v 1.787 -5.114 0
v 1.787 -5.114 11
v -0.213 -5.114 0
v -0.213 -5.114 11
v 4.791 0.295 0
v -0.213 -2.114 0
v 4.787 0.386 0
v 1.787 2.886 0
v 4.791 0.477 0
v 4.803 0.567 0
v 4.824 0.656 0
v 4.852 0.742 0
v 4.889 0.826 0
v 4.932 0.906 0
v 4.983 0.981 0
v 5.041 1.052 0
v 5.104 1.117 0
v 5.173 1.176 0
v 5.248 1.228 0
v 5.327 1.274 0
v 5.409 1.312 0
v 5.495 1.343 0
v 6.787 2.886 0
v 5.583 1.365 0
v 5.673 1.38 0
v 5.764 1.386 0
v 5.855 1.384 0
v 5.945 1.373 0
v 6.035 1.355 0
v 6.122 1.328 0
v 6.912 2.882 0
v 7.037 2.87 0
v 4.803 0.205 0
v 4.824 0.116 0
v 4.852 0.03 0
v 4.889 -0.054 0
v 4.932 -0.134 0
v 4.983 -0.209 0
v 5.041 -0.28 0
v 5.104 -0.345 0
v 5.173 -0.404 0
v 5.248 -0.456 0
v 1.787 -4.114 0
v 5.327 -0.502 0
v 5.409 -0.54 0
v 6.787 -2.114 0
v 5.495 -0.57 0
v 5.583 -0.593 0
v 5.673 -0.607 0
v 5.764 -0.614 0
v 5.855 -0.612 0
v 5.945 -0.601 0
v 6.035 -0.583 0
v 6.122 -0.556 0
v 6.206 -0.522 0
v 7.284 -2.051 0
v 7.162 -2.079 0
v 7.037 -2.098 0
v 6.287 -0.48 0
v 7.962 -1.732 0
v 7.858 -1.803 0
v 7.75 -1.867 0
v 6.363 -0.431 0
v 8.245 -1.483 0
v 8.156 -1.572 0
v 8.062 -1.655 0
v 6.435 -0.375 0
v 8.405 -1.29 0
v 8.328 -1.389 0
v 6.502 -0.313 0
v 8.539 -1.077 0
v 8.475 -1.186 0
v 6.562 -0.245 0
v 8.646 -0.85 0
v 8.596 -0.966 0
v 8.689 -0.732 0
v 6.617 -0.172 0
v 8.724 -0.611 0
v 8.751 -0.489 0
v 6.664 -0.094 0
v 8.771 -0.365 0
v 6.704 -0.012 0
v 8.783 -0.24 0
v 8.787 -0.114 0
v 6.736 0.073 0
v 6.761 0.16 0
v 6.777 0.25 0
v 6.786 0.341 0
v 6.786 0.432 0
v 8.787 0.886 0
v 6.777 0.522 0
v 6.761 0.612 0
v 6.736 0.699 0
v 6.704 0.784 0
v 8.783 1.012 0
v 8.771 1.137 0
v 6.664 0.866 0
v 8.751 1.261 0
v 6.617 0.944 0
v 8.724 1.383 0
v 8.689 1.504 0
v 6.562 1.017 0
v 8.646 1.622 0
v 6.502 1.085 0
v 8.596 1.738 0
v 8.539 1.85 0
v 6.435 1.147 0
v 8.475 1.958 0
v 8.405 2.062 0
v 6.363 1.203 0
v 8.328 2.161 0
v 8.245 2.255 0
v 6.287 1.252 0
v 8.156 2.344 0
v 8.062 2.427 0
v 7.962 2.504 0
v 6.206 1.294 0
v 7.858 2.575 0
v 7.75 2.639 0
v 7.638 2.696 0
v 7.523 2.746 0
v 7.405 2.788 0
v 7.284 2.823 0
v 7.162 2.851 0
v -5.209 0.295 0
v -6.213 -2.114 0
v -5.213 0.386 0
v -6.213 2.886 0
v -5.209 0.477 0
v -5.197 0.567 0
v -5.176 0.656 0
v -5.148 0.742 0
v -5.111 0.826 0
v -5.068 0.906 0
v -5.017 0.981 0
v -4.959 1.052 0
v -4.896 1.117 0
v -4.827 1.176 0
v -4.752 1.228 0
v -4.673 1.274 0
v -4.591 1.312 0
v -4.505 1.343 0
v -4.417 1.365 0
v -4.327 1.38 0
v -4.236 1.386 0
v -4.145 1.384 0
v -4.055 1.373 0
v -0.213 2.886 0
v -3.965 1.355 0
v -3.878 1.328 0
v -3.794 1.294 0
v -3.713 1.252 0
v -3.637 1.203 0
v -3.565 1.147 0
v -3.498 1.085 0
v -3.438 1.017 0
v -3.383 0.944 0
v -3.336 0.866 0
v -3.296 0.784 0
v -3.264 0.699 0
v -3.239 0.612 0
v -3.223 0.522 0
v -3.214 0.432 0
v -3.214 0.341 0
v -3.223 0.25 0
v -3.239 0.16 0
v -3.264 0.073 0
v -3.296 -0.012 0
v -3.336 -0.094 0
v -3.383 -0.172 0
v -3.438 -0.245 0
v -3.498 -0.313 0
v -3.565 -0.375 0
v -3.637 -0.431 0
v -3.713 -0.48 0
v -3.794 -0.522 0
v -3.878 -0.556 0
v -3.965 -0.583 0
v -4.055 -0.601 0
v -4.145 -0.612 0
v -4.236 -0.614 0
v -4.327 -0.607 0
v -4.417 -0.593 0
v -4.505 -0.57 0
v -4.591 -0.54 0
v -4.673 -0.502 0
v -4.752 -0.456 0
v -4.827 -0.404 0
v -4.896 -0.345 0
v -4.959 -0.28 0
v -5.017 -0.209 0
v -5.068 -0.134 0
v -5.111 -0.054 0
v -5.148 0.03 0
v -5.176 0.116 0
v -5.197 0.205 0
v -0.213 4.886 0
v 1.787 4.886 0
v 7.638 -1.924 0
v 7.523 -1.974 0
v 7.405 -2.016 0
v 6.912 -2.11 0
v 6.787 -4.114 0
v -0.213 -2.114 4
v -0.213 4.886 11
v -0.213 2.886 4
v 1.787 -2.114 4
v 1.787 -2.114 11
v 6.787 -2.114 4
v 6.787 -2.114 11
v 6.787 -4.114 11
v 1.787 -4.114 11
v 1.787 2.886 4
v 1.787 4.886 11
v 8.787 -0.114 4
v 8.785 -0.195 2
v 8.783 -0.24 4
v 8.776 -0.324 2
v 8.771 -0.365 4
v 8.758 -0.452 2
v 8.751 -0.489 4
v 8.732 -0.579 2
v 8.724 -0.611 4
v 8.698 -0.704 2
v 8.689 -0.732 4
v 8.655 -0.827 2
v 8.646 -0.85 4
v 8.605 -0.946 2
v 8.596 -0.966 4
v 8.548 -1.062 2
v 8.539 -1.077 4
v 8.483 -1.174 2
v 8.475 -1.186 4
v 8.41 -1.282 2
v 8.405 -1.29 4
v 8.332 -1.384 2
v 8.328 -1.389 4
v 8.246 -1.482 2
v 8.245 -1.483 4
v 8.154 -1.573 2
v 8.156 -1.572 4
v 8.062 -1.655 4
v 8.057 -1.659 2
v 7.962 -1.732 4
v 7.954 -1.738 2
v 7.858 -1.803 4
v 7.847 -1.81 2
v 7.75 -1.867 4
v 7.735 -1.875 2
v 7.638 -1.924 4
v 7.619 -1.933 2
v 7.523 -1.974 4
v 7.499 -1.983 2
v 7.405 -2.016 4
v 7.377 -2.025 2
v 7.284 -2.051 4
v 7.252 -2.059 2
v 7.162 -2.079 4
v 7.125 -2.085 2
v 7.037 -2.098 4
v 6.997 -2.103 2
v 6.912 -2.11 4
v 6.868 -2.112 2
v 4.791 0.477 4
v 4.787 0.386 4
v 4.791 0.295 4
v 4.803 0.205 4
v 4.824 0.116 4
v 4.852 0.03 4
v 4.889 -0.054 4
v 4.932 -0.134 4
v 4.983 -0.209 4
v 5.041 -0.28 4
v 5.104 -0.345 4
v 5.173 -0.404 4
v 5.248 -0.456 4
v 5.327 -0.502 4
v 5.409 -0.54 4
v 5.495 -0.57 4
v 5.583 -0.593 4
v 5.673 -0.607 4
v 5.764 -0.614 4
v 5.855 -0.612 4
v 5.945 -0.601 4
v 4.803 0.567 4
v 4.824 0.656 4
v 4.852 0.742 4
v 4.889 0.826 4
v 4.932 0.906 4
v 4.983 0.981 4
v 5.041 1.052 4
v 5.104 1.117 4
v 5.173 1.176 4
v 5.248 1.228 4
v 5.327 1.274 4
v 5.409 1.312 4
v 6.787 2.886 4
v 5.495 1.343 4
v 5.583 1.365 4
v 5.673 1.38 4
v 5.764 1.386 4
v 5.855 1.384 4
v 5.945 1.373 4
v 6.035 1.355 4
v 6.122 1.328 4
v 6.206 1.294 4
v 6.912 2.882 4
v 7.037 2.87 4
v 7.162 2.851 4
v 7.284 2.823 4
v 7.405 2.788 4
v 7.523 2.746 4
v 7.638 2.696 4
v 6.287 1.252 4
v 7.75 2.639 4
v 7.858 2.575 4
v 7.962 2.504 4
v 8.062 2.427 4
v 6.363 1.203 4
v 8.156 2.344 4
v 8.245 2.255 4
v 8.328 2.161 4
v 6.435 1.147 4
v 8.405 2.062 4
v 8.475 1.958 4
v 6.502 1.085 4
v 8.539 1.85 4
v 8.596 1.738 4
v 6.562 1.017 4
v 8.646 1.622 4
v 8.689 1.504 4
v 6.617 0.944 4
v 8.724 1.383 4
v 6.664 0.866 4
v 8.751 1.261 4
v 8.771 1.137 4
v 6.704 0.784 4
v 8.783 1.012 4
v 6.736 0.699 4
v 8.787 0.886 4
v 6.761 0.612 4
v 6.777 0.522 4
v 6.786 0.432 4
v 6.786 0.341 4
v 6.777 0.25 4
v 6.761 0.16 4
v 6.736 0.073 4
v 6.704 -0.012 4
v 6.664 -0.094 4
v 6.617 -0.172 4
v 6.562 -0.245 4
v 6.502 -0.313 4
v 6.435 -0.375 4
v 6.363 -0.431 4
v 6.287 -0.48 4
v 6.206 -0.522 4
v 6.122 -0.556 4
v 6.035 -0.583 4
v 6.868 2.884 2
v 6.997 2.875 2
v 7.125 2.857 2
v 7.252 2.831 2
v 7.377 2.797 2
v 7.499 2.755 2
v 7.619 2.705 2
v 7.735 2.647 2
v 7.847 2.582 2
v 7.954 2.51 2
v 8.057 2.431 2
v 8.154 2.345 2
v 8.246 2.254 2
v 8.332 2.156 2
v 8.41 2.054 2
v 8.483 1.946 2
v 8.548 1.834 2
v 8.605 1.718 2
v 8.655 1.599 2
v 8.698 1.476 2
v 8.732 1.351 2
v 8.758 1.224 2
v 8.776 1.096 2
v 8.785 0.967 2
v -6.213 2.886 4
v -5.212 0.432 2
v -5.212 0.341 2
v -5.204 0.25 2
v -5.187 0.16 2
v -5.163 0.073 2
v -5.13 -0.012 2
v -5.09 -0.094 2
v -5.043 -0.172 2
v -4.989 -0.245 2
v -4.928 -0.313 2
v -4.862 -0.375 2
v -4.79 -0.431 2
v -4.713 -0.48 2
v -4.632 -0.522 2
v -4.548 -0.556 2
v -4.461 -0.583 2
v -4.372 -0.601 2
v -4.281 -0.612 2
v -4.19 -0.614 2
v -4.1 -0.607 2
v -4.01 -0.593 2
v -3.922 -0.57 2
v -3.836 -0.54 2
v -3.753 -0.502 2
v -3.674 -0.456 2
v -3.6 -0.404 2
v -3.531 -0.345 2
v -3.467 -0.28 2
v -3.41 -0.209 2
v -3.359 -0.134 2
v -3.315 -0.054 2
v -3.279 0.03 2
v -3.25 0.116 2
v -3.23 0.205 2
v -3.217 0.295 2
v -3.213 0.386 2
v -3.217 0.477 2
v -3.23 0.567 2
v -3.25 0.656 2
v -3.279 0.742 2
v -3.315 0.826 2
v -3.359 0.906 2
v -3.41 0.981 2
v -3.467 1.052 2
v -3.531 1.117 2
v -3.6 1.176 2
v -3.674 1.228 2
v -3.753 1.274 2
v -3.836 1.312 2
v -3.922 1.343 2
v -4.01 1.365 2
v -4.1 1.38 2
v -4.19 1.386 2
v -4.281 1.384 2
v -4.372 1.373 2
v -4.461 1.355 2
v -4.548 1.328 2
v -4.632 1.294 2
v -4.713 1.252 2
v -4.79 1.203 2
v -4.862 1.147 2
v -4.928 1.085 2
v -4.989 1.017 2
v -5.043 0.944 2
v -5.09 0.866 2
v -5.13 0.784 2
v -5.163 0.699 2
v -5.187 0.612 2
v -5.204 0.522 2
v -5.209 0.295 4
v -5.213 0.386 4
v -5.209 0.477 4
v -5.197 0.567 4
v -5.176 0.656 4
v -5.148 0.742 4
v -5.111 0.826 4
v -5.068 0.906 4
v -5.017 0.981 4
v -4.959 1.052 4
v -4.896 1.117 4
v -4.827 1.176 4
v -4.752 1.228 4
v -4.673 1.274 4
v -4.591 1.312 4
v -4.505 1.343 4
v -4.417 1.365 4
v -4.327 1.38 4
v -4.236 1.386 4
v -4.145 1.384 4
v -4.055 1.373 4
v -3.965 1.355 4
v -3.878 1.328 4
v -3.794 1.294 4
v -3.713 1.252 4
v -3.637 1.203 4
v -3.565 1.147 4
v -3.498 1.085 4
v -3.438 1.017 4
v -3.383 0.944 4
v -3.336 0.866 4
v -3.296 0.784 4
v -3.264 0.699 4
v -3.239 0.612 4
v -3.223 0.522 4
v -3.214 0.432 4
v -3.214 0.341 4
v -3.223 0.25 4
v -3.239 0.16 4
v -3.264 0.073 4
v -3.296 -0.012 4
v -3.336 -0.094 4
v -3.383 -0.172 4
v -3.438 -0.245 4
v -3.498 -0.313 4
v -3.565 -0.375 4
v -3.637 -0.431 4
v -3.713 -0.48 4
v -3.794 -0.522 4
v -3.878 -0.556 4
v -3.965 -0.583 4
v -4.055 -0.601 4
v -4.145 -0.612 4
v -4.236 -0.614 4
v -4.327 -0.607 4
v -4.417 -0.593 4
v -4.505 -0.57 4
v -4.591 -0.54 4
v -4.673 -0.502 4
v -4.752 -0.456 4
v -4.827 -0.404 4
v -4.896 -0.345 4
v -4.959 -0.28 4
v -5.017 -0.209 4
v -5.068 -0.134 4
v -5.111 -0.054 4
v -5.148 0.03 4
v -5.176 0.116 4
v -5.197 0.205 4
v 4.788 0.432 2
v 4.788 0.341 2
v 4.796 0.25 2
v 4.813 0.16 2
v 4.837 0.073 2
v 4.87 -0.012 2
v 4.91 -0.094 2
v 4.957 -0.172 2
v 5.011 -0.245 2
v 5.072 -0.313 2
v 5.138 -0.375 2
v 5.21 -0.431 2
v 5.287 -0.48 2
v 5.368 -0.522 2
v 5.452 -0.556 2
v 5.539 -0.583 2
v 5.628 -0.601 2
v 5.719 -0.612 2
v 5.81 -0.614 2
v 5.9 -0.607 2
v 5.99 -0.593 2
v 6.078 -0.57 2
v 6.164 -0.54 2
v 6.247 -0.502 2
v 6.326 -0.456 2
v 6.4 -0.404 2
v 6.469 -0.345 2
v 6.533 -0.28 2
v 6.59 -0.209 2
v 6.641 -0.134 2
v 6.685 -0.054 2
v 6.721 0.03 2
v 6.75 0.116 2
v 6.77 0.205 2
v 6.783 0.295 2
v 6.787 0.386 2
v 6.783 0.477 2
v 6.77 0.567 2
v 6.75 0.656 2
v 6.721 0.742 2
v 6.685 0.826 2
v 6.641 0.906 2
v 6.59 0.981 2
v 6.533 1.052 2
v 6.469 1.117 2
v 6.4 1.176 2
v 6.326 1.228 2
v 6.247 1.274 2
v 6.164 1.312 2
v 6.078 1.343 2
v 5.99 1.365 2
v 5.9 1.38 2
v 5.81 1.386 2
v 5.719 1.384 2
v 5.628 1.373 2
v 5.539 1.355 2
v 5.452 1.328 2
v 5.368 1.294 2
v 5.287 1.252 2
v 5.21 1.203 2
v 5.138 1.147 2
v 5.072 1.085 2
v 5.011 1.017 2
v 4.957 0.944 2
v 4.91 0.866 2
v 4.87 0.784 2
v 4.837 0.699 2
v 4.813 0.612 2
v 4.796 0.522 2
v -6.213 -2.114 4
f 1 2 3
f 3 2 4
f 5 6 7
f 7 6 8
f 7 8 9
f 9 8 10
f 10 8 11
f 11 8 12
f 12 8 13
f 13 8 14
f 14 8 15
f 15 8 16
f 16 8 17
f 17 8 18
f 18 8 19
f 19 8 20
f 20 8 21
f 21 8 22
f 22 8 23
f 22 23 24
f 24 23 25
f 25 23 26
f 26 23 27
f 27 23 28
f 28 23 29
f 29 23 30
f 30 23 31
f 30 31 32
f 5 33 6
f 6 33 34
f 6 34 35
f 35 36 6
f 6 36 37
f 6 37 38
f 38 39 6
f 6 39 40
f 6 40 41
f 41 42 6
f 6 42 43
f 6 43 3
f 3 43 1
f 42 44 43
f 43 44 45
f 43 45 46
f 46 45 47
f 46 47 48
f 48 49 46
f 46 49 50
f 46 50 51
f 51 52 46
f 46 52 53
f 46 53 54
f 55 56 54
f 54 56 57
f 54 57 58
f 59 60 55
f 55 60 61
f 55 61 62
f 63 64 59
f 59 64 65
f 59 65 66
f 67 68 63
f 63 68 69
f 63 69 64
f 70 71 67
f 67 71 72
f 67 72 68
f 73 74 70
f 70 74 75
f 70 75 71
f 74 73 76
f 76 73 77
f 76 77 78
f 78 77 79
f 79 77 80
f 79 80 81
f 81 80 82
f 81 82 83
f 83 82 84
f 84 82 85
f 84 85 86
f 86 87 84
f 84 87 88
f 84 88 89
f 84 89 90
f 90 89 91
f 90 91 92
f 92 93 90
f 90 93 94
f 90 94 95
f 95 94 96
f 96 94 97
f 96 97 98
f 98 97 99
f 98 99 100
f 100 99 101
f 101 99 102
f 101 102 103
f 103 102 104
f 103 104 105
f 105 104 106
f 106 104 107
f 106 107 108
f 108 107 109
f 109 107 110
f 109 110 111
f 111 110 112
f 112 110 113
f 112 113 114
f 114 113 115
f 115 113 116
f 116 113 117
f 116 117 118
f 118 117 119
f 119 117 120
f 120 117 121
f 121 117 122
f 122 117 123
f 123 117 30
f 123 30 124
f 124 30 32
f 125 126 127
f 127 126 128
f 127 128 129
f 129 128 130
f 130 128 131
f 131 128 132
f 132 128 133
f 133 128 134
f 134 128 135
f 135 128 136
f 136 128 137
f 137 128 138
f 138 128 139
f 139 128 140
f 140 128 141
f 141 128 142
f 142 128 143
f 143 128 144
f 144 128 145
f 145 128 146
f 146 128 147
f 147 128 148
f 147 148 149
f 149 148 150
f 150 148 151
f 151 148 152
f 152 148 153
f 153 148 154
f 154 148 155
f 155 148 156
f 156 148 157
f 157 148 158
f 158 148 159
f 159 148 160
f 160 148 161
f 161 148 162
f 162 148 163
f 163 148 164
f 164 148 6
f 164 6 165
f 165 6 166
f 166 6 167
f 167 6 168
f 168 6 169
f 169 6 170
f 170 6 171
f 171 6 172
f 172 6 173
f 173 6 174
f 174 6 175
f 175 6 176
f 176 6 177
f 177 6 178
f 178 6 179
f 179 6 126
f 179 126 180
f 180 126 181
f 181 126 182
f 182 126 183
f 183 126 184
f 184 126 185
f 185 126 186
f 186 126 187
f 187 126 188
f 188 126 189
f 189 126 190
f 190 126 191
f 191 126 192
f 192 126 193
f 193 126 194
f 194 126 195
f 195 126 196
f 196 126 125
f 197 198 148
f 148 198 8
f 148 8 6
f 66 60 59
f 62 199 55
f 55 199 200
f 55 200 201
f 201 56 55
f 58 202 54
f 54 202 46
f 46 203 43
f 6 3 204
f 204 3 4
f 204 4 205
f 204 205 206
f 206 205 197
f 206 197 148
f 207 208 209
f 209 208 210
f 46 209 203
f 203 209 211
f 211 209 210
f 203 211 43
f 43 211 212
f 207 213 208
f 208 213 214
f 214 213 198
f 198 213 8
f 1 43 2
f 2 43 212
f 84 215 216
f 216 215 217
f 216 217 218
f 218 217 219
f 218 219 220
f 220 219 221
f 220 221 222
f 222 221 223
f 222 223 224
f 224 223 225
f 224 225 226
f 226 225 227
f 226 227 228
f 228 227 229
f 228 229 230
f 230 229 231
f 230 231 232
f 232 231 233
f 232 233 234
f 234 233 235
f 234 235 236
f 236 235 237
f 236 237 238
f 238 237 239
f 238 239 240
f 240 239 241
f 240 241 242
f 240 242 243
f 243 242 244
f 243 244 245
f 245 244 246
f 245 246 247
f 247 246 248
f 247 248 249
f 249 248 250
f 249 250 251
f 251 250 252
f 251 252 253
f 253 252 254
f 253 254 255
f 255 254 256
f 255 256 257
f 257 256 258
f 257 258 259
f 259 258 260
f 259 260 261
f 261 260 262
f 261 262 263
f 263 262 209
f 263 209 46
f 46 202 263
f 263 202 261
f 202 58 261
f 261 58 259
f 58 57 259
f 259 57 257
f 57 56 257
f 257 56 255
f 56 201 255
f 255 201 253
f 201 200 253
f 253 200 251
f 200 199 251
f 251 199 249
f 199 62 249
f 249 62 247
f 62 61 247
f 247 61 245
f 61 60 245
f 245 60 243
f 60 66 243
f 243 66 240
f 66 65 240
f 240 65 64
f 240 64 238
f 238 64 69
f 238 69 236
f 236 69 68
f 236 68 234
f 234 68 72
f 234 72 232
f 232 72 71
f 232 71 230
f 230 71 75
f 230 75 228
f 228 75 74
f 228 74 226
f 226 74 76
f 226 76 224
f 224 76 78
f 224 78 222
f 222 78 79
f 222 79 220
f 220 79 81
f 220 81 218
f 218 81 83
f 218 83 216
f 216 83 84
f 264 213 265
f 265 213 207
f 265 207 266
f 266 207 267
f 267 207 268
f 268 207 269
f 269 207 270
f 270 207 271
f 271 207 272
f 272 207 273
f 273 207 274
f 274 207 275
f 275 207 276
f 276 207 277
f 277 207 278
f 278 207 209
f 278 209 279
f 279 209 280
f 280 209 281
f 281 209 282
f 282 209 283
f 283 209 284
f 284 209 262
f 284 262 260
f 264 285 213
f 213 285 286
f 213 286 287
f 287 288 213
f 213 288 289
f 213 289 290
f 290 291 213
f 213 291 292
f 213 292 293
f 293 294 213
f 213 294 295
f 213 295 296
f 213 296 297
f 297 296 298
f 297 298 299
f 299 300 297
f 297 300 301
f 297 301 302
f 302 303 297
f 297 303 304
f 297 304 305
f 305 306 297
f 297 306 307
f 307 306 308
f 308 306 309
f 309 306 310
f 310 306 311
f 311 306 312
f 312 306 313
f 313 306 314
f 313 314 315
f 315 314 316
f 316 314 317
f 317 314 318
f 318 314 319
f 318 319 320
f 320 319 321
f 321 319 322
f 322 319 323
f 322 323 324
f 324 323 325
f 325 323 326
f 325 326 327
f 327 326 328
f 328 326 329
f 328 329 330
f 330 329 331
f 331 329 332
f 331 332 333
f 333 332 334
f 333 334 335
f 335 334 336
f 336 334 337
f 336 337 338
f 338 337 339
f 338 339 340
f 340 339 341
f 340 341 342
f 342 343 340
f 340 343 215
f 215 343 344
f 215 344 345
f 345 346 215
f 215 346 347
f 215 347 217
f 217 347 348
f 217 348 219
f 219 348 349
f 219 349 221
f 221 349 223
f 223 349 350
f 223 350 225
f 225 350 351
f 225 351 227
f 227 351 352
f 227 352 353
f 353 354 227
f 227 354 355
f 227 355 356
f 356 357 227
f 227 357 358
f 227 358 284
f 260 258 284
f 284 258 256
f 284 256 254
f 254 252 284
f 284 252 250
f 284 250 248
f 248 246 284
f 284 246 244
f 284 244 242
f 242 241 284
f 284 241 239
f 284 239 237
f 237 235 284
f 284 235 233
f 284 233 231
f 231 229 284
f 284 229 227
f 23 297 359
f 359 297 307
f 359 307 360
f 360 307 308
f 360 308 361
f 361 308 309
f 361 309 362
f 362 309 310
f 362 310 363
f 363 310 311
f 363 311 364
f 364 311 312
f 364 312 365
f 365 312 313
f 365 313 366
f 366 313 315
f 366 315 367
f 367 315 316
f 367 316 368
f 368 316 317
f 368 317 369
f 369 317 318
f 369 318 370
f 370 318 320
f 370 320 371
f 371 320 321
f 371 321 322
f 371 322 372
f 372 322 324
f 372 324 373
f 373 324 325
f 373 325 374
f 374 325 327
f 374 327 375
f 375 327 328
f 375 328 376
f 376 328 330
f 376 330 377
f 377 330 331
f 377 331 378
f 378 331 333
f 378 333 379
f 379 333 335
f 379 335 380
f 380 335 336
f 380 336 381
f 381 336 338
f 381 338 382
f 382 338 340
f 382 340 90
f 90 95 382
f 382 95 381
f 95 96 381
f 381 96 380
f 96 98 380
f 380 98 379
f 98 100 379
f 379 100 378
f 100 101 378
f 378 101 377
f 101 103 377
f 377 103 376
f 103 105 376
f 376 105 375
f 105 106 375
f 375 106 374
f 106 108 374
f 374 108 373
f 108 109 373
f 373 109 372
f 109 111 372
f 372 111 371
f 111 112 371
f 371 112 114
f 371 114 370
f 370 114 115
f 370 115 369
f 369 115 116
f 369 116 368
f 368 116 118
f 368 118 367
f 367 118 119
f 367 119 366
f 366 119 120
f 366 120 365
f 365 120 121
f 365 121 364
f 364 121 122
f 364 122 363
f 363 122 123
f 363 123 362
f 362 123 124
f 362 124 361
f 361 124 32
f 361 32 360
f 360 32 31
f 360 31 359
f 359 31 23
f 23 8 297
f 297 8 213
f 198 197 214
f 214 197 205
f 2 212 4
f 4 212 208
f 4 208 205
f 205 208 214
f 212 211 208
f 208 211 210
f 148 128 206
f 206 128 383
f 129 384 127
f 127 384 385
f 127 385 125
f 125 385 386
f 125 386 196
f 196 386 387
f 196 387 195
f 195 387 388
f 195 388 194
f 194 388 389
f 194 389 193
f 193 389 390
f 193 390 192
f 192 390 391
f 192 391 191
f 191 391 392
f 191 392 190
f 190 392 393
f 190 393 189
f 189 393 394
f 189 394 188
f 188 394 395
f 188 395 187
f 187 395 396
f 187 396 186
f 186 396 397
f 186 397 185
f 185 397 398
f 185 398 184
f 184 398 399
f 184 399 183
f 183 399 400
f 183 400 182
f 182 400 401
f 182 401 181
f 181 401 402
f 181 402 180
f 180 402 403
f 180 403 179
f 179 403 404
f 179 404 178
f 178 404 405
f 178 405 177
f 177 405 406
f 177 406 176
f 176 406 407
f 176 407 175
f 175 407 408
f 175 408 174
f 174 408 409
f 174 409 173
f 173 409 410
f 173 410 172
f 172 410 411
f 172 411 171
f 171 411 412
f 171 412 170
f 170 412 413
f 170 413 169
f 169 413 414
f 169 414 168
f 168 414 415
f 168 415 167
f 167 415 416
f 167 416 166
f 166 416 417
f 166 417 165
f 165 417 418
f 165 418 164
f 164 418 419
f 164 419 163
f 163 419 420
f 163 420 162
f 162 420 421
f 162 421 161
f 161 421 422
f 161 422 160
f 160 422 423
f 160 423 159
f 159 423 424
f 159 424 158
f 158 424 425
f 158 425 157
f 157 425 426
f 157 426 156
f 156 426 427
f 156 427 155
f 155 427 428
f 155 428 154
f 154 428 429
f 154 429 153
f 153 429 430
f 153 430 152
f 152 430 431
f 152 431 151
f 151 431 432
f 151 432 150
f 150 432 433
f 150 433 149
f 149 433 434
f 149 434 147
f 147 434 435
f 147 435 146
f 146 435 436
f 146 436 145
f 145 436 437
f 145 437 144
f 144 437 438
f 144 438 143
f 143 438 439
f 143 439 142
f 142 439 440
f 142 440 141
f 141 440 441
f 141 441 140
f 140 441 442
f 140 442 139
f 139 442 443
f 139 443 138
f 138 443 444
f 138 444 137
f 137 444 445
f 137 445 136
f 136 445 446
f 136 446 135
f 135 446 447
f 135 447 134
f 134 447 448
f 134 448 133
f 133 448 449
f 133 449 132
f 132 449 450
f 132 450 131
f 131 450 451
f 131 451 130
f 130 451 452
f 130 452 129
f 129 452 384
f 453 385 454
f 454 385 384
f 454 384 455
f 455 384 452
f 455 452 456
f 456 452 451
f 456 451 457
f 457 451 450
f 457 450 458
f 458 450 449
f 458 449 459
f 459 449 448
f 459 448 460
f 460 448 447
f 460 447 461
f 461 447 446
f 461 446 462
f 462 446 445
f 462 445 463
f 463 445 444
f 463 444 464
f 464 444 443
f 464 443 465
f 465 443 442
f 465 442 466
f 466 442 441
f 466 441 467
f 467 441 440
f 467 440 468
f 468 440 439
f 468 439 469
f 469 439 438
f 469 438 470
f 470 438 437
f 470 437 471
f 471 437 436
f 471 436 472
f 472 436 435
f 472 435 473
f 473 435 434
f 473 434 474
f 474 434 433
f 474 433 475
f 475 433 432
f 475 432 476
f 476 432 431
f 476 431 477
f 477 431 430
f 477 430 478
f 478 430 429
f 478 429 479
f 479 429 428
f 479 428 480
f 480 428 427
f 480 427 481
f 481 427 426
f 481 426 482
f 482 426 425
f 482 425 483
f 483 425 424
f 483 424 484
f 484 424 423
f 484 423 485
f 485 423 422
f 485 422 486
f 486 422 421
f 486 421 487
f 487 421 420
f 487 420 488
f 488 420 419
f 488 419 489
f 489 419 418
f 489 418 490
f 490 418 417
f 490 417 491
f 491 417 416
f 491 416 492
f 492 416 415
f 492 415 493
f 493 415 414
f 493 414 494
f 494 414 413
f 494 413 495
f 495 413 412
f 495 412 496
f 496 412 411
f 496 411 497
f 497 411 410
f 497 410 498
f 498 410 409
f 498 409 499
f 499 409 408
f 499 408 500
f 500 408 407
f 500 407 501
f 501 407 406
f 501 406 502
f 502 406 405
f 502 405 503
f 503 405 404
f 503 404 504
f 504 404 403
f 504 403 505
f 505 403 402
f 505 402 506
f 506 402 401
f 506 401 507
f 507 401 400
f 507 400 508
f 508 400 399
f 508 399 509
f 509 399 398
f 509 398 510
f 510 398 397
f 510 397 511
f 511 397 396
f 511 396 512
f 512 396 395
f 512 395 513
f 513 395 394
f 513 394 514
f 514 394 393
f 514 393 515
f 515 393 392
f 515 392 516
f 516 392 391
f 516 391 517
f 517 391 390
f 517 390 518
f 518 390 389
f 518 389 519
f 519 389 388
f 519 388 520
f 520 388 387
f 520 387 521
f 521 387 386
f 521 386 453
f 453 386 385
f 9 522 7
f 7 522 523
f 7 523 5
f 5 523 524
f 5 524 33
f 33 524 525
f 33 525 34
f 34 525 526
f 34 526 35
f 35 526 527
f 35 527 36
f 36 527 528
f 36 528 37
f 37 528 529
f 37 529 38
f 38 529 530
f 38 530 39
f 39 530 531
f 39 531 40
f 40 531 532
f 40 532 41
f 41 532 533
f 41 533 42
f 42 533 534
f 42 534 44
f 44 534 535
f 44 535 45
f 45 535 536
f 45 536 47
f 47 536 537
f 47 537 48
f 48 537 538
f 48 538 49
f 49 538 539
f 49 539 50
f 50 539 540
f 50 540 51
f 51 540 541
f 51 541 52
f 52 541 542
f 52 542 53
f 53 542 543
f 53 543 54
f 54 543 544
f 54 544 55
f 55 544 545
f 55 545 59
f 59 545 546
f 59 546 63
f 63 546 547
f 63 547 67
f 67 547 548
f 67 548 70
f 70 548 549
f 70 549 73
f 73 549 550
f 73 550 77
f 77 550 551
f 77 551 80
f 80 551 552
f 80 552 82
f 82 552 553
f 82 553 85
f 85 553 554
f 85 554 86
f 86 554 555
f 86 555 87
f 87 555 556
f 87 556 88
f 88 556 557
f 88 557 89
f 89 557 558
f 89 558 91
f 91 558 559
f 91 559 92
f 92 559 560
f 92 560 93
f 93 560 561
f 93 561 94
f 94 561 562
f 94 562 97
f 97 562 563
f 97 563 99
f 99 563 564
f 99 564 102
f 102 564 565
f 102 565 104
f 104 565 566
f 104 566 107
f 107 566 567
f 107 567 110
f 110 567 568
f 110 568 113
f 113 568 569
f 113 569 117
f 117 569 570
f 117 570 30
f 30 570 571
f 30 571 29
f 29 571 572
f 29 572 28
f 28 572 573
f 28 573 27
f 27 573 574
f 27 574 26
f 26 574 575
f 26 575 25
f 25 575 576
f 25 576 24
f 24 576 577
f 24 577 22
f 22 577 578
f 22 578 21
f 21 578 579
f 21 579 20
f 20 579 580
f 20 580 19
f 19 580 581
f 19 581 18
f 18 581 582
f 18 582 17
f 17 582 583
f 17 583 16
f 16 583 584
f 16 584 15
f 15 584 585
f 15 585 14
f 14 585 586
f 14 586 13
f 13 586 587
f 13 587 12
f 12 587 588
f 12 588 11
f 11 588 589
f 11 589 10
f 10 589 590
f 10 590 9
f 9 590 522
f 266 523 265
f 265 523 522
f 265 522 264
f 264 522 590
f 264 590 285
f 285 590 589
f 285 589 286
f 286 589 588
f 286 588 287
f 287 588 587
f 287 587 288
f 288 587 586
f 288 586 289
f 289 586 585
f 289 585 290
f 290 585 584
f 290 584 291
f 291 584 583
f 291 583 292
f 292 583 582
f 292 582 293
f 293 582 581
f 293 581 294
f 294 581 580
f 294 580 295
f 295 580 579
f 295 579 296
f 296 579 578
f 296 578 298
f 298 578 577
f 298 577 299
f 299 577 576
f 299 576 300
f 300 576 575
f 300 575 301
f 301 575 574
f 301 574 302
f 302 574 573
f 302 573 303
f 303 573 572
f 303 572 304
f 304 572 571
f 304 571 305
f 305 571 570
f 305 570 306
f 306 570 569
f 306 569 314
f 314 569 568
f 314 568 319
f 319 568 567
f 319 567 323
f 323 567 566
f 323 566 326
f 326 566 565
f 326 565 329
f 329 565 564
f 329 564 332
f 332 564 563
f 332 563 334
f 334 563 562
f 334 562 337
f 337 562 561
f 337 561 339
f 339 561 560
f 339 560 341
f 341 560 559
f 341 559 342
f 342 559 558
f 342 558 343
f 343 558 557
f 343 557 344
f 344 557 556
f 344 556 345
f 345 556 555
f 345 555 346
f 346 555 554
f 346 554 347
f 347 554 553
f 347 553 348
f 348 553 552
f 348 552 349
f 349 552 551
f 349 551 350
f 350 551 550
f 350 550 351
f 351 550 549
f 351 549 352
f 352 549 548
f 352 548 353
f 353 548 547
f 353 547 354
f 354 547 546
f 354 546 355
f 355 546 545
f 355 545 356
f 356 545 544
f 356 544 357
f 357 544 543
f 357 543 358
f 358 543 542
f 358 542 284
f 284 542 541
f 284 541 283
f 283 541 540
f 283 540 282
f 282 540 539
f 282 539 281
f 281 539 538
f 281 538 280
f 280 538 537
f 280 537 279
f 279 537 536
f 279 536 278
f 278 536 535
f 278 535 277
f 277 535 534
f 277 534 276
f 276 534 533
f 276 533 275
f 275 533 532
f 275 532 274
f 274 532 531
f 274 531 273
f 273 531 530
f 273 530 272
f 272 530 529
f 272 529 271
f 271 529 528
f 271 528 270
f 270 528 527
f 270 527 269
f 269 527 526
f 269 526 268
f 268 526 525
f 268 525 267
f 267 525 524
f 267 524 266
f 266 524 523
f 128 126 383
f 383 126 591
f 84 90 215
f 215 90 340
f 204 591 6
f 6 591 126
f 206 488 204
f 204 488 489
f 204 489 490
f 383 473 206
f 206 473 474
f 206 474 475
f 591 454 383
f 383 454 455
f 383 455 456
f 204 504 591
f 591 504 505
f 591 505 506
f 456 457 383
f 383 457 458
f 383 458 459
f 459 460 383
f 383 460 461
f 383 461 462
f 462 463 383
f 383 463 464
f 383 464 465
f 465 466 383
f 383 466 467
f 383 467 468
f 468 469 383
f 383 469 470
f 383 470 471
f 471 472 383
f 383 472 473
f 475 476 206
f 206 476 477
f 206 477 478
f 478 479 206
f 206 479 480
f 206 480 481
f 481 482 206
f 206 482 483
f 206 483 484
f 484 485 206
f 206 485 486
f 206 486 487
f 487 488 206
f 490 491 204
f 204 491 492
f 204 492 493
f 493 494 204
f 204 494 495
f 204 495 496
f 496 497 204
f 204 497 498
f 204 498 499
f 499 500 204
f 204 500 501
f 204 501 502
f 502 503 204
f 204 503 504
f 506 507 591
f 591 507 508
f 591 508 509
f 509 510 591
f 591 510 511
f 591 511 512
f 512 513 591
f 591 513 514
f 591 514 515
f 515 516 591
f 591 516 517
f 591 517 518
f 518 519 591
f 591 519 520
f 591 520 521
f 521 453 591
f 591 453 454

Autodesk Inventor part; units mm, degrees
ref_plane "YZ Plane" through (0, 0, 0) normal (1, 0, 0) x (0, 1, 0)
ref_plane "XZ Plane" through (0, 0, 0) normal (0, 1, 0) x (-1, 0, 0)
ref_plane "XY Plane" through (0, 0, 0) normal (0, 0, 1) x (1, 0, 0)
sketch "Sketch1" plane through (0, 0, 0) normal (0, 0, 1) x (1, 0, 0)
  line L0 (-6.2132, 2.886) -> (8.7868, 2.886)
  line L1 (8.7868, 2.886) -> (8.7868, -2.114)
  line L2 (8.7868, -2.114) -> (-6.2132, -2.114)
  line L3 (-6.2132, -2.114) -> (-6.2132, 2.886)
  point P0 (0, 0)
  dimension "d0" = 15
  dimension "d1" = 5
extrude "Extrusion1" add sketch "Sketch1" along normal blind 4
sketch "Sketch2" plane through (0, 0, 0) normal (0, 0, -1) x (-1, 0, 0)
  line L0 (-8.7868, 2.886) -> (6.2132, 2.886) projected
  line L1 (6.2132, 2.886) -> (6.2132, -2.114) projected
  point P0 (0, 0)
  point P1 (4.2132, 0.386)
  point P2 (-5.7868, 0.386)
  dimension "d4" = 2.5
  dimension "d5" = 2.5
  dimension "d6" = 2
  dimension "d7" = 10
hole "Hole1" at (-4.2132, 0.386, 0) at (5.7868, 0.386, 0) direction (0, 0, 1) diameter 2 depth 4 tip angle 118
sketch "Sketch3" plane through (0, 0, 0) normal (0, 0, -1) x (-1, 0, 0)
  line L0 (-8.7868, 2.886) -> (6.2132, 2.886) projected
  line L1 (0.2132, 2.886) -> (-1.7868, 2.886)
  line L2 (-1.7868, 2.886) -> (-1.7868, -7.114)
  line L3 (-1.7868, -7.114) -> (0.2132, -7.114)
  line L4 (0.2132, -7.114) -> (0.2132, 2.886)
  line L5 (6.2132, 2.886) -> (6.2132, -2.114) projected
  line L6 (-1.7868, 2.886) -> (0.2132, 2.886)
  line L7 (0.2132, 2.886) -> (0.2132, 4.886)
  line L8 (0.2132, 4.886) -> (-1.7868, 4.886)
  line L9 (-1.7868, 4.886) -> (-1.7868, 2.886)
  point P0 (0, 0)
  dimension "d15" = 6
  dimension "d16" = 2
  dimension "d17" = 12
  dimension "d18" = 2
extrude "Extrusion2" add sketch "Sketch3" against normal blind 11
fillet "Fillet1" radius 2 2 edges at (8.7868, 2.886, 2) (8.7868, -2.114, 2)
sketch "Sketch4" plane through (1.7868, -2.114, 0) normal (0, -1, 0) x (1, 0, 0)
  line L0 (0, 0) -> (0, 11) projected
  line L1 (7, 0) -> (5, 0) projected
  line L2 (0, 11) -> (5, 11)
  line L3 (5, 11) -> (5, 0)
  line L4 (5, 0) -> (0, 0)
  line L5 (0, 0) -> (0, 11)
  point P0 (-1.7868, 0)
extrude "Extrusion3" add sketch "Sketch4" along normal blind 2
sketch "Sketch5" plane through (-0.2132, -7.114, 0) normal (0, -1, 0) x (1, 0, 0)
  line L0 (-6, 0) -> (-6, 4) projected
  line L1 (7, 11) -> (2, 11) projected
  line L2 (-6, 0) -> (7, 0)
  line L3 (7, 0) -> (7, 11)
  line L4 (7, 11) -> (-6, 11)
  line L5 (-6, 11) -> (-6, 0)
  point P0 (0.2132, 0)
  point P1 (2, 11)
extrude "Extrusion4" cut sketch "Sketch5" against normal blind 2
properties part number "oled_support"
